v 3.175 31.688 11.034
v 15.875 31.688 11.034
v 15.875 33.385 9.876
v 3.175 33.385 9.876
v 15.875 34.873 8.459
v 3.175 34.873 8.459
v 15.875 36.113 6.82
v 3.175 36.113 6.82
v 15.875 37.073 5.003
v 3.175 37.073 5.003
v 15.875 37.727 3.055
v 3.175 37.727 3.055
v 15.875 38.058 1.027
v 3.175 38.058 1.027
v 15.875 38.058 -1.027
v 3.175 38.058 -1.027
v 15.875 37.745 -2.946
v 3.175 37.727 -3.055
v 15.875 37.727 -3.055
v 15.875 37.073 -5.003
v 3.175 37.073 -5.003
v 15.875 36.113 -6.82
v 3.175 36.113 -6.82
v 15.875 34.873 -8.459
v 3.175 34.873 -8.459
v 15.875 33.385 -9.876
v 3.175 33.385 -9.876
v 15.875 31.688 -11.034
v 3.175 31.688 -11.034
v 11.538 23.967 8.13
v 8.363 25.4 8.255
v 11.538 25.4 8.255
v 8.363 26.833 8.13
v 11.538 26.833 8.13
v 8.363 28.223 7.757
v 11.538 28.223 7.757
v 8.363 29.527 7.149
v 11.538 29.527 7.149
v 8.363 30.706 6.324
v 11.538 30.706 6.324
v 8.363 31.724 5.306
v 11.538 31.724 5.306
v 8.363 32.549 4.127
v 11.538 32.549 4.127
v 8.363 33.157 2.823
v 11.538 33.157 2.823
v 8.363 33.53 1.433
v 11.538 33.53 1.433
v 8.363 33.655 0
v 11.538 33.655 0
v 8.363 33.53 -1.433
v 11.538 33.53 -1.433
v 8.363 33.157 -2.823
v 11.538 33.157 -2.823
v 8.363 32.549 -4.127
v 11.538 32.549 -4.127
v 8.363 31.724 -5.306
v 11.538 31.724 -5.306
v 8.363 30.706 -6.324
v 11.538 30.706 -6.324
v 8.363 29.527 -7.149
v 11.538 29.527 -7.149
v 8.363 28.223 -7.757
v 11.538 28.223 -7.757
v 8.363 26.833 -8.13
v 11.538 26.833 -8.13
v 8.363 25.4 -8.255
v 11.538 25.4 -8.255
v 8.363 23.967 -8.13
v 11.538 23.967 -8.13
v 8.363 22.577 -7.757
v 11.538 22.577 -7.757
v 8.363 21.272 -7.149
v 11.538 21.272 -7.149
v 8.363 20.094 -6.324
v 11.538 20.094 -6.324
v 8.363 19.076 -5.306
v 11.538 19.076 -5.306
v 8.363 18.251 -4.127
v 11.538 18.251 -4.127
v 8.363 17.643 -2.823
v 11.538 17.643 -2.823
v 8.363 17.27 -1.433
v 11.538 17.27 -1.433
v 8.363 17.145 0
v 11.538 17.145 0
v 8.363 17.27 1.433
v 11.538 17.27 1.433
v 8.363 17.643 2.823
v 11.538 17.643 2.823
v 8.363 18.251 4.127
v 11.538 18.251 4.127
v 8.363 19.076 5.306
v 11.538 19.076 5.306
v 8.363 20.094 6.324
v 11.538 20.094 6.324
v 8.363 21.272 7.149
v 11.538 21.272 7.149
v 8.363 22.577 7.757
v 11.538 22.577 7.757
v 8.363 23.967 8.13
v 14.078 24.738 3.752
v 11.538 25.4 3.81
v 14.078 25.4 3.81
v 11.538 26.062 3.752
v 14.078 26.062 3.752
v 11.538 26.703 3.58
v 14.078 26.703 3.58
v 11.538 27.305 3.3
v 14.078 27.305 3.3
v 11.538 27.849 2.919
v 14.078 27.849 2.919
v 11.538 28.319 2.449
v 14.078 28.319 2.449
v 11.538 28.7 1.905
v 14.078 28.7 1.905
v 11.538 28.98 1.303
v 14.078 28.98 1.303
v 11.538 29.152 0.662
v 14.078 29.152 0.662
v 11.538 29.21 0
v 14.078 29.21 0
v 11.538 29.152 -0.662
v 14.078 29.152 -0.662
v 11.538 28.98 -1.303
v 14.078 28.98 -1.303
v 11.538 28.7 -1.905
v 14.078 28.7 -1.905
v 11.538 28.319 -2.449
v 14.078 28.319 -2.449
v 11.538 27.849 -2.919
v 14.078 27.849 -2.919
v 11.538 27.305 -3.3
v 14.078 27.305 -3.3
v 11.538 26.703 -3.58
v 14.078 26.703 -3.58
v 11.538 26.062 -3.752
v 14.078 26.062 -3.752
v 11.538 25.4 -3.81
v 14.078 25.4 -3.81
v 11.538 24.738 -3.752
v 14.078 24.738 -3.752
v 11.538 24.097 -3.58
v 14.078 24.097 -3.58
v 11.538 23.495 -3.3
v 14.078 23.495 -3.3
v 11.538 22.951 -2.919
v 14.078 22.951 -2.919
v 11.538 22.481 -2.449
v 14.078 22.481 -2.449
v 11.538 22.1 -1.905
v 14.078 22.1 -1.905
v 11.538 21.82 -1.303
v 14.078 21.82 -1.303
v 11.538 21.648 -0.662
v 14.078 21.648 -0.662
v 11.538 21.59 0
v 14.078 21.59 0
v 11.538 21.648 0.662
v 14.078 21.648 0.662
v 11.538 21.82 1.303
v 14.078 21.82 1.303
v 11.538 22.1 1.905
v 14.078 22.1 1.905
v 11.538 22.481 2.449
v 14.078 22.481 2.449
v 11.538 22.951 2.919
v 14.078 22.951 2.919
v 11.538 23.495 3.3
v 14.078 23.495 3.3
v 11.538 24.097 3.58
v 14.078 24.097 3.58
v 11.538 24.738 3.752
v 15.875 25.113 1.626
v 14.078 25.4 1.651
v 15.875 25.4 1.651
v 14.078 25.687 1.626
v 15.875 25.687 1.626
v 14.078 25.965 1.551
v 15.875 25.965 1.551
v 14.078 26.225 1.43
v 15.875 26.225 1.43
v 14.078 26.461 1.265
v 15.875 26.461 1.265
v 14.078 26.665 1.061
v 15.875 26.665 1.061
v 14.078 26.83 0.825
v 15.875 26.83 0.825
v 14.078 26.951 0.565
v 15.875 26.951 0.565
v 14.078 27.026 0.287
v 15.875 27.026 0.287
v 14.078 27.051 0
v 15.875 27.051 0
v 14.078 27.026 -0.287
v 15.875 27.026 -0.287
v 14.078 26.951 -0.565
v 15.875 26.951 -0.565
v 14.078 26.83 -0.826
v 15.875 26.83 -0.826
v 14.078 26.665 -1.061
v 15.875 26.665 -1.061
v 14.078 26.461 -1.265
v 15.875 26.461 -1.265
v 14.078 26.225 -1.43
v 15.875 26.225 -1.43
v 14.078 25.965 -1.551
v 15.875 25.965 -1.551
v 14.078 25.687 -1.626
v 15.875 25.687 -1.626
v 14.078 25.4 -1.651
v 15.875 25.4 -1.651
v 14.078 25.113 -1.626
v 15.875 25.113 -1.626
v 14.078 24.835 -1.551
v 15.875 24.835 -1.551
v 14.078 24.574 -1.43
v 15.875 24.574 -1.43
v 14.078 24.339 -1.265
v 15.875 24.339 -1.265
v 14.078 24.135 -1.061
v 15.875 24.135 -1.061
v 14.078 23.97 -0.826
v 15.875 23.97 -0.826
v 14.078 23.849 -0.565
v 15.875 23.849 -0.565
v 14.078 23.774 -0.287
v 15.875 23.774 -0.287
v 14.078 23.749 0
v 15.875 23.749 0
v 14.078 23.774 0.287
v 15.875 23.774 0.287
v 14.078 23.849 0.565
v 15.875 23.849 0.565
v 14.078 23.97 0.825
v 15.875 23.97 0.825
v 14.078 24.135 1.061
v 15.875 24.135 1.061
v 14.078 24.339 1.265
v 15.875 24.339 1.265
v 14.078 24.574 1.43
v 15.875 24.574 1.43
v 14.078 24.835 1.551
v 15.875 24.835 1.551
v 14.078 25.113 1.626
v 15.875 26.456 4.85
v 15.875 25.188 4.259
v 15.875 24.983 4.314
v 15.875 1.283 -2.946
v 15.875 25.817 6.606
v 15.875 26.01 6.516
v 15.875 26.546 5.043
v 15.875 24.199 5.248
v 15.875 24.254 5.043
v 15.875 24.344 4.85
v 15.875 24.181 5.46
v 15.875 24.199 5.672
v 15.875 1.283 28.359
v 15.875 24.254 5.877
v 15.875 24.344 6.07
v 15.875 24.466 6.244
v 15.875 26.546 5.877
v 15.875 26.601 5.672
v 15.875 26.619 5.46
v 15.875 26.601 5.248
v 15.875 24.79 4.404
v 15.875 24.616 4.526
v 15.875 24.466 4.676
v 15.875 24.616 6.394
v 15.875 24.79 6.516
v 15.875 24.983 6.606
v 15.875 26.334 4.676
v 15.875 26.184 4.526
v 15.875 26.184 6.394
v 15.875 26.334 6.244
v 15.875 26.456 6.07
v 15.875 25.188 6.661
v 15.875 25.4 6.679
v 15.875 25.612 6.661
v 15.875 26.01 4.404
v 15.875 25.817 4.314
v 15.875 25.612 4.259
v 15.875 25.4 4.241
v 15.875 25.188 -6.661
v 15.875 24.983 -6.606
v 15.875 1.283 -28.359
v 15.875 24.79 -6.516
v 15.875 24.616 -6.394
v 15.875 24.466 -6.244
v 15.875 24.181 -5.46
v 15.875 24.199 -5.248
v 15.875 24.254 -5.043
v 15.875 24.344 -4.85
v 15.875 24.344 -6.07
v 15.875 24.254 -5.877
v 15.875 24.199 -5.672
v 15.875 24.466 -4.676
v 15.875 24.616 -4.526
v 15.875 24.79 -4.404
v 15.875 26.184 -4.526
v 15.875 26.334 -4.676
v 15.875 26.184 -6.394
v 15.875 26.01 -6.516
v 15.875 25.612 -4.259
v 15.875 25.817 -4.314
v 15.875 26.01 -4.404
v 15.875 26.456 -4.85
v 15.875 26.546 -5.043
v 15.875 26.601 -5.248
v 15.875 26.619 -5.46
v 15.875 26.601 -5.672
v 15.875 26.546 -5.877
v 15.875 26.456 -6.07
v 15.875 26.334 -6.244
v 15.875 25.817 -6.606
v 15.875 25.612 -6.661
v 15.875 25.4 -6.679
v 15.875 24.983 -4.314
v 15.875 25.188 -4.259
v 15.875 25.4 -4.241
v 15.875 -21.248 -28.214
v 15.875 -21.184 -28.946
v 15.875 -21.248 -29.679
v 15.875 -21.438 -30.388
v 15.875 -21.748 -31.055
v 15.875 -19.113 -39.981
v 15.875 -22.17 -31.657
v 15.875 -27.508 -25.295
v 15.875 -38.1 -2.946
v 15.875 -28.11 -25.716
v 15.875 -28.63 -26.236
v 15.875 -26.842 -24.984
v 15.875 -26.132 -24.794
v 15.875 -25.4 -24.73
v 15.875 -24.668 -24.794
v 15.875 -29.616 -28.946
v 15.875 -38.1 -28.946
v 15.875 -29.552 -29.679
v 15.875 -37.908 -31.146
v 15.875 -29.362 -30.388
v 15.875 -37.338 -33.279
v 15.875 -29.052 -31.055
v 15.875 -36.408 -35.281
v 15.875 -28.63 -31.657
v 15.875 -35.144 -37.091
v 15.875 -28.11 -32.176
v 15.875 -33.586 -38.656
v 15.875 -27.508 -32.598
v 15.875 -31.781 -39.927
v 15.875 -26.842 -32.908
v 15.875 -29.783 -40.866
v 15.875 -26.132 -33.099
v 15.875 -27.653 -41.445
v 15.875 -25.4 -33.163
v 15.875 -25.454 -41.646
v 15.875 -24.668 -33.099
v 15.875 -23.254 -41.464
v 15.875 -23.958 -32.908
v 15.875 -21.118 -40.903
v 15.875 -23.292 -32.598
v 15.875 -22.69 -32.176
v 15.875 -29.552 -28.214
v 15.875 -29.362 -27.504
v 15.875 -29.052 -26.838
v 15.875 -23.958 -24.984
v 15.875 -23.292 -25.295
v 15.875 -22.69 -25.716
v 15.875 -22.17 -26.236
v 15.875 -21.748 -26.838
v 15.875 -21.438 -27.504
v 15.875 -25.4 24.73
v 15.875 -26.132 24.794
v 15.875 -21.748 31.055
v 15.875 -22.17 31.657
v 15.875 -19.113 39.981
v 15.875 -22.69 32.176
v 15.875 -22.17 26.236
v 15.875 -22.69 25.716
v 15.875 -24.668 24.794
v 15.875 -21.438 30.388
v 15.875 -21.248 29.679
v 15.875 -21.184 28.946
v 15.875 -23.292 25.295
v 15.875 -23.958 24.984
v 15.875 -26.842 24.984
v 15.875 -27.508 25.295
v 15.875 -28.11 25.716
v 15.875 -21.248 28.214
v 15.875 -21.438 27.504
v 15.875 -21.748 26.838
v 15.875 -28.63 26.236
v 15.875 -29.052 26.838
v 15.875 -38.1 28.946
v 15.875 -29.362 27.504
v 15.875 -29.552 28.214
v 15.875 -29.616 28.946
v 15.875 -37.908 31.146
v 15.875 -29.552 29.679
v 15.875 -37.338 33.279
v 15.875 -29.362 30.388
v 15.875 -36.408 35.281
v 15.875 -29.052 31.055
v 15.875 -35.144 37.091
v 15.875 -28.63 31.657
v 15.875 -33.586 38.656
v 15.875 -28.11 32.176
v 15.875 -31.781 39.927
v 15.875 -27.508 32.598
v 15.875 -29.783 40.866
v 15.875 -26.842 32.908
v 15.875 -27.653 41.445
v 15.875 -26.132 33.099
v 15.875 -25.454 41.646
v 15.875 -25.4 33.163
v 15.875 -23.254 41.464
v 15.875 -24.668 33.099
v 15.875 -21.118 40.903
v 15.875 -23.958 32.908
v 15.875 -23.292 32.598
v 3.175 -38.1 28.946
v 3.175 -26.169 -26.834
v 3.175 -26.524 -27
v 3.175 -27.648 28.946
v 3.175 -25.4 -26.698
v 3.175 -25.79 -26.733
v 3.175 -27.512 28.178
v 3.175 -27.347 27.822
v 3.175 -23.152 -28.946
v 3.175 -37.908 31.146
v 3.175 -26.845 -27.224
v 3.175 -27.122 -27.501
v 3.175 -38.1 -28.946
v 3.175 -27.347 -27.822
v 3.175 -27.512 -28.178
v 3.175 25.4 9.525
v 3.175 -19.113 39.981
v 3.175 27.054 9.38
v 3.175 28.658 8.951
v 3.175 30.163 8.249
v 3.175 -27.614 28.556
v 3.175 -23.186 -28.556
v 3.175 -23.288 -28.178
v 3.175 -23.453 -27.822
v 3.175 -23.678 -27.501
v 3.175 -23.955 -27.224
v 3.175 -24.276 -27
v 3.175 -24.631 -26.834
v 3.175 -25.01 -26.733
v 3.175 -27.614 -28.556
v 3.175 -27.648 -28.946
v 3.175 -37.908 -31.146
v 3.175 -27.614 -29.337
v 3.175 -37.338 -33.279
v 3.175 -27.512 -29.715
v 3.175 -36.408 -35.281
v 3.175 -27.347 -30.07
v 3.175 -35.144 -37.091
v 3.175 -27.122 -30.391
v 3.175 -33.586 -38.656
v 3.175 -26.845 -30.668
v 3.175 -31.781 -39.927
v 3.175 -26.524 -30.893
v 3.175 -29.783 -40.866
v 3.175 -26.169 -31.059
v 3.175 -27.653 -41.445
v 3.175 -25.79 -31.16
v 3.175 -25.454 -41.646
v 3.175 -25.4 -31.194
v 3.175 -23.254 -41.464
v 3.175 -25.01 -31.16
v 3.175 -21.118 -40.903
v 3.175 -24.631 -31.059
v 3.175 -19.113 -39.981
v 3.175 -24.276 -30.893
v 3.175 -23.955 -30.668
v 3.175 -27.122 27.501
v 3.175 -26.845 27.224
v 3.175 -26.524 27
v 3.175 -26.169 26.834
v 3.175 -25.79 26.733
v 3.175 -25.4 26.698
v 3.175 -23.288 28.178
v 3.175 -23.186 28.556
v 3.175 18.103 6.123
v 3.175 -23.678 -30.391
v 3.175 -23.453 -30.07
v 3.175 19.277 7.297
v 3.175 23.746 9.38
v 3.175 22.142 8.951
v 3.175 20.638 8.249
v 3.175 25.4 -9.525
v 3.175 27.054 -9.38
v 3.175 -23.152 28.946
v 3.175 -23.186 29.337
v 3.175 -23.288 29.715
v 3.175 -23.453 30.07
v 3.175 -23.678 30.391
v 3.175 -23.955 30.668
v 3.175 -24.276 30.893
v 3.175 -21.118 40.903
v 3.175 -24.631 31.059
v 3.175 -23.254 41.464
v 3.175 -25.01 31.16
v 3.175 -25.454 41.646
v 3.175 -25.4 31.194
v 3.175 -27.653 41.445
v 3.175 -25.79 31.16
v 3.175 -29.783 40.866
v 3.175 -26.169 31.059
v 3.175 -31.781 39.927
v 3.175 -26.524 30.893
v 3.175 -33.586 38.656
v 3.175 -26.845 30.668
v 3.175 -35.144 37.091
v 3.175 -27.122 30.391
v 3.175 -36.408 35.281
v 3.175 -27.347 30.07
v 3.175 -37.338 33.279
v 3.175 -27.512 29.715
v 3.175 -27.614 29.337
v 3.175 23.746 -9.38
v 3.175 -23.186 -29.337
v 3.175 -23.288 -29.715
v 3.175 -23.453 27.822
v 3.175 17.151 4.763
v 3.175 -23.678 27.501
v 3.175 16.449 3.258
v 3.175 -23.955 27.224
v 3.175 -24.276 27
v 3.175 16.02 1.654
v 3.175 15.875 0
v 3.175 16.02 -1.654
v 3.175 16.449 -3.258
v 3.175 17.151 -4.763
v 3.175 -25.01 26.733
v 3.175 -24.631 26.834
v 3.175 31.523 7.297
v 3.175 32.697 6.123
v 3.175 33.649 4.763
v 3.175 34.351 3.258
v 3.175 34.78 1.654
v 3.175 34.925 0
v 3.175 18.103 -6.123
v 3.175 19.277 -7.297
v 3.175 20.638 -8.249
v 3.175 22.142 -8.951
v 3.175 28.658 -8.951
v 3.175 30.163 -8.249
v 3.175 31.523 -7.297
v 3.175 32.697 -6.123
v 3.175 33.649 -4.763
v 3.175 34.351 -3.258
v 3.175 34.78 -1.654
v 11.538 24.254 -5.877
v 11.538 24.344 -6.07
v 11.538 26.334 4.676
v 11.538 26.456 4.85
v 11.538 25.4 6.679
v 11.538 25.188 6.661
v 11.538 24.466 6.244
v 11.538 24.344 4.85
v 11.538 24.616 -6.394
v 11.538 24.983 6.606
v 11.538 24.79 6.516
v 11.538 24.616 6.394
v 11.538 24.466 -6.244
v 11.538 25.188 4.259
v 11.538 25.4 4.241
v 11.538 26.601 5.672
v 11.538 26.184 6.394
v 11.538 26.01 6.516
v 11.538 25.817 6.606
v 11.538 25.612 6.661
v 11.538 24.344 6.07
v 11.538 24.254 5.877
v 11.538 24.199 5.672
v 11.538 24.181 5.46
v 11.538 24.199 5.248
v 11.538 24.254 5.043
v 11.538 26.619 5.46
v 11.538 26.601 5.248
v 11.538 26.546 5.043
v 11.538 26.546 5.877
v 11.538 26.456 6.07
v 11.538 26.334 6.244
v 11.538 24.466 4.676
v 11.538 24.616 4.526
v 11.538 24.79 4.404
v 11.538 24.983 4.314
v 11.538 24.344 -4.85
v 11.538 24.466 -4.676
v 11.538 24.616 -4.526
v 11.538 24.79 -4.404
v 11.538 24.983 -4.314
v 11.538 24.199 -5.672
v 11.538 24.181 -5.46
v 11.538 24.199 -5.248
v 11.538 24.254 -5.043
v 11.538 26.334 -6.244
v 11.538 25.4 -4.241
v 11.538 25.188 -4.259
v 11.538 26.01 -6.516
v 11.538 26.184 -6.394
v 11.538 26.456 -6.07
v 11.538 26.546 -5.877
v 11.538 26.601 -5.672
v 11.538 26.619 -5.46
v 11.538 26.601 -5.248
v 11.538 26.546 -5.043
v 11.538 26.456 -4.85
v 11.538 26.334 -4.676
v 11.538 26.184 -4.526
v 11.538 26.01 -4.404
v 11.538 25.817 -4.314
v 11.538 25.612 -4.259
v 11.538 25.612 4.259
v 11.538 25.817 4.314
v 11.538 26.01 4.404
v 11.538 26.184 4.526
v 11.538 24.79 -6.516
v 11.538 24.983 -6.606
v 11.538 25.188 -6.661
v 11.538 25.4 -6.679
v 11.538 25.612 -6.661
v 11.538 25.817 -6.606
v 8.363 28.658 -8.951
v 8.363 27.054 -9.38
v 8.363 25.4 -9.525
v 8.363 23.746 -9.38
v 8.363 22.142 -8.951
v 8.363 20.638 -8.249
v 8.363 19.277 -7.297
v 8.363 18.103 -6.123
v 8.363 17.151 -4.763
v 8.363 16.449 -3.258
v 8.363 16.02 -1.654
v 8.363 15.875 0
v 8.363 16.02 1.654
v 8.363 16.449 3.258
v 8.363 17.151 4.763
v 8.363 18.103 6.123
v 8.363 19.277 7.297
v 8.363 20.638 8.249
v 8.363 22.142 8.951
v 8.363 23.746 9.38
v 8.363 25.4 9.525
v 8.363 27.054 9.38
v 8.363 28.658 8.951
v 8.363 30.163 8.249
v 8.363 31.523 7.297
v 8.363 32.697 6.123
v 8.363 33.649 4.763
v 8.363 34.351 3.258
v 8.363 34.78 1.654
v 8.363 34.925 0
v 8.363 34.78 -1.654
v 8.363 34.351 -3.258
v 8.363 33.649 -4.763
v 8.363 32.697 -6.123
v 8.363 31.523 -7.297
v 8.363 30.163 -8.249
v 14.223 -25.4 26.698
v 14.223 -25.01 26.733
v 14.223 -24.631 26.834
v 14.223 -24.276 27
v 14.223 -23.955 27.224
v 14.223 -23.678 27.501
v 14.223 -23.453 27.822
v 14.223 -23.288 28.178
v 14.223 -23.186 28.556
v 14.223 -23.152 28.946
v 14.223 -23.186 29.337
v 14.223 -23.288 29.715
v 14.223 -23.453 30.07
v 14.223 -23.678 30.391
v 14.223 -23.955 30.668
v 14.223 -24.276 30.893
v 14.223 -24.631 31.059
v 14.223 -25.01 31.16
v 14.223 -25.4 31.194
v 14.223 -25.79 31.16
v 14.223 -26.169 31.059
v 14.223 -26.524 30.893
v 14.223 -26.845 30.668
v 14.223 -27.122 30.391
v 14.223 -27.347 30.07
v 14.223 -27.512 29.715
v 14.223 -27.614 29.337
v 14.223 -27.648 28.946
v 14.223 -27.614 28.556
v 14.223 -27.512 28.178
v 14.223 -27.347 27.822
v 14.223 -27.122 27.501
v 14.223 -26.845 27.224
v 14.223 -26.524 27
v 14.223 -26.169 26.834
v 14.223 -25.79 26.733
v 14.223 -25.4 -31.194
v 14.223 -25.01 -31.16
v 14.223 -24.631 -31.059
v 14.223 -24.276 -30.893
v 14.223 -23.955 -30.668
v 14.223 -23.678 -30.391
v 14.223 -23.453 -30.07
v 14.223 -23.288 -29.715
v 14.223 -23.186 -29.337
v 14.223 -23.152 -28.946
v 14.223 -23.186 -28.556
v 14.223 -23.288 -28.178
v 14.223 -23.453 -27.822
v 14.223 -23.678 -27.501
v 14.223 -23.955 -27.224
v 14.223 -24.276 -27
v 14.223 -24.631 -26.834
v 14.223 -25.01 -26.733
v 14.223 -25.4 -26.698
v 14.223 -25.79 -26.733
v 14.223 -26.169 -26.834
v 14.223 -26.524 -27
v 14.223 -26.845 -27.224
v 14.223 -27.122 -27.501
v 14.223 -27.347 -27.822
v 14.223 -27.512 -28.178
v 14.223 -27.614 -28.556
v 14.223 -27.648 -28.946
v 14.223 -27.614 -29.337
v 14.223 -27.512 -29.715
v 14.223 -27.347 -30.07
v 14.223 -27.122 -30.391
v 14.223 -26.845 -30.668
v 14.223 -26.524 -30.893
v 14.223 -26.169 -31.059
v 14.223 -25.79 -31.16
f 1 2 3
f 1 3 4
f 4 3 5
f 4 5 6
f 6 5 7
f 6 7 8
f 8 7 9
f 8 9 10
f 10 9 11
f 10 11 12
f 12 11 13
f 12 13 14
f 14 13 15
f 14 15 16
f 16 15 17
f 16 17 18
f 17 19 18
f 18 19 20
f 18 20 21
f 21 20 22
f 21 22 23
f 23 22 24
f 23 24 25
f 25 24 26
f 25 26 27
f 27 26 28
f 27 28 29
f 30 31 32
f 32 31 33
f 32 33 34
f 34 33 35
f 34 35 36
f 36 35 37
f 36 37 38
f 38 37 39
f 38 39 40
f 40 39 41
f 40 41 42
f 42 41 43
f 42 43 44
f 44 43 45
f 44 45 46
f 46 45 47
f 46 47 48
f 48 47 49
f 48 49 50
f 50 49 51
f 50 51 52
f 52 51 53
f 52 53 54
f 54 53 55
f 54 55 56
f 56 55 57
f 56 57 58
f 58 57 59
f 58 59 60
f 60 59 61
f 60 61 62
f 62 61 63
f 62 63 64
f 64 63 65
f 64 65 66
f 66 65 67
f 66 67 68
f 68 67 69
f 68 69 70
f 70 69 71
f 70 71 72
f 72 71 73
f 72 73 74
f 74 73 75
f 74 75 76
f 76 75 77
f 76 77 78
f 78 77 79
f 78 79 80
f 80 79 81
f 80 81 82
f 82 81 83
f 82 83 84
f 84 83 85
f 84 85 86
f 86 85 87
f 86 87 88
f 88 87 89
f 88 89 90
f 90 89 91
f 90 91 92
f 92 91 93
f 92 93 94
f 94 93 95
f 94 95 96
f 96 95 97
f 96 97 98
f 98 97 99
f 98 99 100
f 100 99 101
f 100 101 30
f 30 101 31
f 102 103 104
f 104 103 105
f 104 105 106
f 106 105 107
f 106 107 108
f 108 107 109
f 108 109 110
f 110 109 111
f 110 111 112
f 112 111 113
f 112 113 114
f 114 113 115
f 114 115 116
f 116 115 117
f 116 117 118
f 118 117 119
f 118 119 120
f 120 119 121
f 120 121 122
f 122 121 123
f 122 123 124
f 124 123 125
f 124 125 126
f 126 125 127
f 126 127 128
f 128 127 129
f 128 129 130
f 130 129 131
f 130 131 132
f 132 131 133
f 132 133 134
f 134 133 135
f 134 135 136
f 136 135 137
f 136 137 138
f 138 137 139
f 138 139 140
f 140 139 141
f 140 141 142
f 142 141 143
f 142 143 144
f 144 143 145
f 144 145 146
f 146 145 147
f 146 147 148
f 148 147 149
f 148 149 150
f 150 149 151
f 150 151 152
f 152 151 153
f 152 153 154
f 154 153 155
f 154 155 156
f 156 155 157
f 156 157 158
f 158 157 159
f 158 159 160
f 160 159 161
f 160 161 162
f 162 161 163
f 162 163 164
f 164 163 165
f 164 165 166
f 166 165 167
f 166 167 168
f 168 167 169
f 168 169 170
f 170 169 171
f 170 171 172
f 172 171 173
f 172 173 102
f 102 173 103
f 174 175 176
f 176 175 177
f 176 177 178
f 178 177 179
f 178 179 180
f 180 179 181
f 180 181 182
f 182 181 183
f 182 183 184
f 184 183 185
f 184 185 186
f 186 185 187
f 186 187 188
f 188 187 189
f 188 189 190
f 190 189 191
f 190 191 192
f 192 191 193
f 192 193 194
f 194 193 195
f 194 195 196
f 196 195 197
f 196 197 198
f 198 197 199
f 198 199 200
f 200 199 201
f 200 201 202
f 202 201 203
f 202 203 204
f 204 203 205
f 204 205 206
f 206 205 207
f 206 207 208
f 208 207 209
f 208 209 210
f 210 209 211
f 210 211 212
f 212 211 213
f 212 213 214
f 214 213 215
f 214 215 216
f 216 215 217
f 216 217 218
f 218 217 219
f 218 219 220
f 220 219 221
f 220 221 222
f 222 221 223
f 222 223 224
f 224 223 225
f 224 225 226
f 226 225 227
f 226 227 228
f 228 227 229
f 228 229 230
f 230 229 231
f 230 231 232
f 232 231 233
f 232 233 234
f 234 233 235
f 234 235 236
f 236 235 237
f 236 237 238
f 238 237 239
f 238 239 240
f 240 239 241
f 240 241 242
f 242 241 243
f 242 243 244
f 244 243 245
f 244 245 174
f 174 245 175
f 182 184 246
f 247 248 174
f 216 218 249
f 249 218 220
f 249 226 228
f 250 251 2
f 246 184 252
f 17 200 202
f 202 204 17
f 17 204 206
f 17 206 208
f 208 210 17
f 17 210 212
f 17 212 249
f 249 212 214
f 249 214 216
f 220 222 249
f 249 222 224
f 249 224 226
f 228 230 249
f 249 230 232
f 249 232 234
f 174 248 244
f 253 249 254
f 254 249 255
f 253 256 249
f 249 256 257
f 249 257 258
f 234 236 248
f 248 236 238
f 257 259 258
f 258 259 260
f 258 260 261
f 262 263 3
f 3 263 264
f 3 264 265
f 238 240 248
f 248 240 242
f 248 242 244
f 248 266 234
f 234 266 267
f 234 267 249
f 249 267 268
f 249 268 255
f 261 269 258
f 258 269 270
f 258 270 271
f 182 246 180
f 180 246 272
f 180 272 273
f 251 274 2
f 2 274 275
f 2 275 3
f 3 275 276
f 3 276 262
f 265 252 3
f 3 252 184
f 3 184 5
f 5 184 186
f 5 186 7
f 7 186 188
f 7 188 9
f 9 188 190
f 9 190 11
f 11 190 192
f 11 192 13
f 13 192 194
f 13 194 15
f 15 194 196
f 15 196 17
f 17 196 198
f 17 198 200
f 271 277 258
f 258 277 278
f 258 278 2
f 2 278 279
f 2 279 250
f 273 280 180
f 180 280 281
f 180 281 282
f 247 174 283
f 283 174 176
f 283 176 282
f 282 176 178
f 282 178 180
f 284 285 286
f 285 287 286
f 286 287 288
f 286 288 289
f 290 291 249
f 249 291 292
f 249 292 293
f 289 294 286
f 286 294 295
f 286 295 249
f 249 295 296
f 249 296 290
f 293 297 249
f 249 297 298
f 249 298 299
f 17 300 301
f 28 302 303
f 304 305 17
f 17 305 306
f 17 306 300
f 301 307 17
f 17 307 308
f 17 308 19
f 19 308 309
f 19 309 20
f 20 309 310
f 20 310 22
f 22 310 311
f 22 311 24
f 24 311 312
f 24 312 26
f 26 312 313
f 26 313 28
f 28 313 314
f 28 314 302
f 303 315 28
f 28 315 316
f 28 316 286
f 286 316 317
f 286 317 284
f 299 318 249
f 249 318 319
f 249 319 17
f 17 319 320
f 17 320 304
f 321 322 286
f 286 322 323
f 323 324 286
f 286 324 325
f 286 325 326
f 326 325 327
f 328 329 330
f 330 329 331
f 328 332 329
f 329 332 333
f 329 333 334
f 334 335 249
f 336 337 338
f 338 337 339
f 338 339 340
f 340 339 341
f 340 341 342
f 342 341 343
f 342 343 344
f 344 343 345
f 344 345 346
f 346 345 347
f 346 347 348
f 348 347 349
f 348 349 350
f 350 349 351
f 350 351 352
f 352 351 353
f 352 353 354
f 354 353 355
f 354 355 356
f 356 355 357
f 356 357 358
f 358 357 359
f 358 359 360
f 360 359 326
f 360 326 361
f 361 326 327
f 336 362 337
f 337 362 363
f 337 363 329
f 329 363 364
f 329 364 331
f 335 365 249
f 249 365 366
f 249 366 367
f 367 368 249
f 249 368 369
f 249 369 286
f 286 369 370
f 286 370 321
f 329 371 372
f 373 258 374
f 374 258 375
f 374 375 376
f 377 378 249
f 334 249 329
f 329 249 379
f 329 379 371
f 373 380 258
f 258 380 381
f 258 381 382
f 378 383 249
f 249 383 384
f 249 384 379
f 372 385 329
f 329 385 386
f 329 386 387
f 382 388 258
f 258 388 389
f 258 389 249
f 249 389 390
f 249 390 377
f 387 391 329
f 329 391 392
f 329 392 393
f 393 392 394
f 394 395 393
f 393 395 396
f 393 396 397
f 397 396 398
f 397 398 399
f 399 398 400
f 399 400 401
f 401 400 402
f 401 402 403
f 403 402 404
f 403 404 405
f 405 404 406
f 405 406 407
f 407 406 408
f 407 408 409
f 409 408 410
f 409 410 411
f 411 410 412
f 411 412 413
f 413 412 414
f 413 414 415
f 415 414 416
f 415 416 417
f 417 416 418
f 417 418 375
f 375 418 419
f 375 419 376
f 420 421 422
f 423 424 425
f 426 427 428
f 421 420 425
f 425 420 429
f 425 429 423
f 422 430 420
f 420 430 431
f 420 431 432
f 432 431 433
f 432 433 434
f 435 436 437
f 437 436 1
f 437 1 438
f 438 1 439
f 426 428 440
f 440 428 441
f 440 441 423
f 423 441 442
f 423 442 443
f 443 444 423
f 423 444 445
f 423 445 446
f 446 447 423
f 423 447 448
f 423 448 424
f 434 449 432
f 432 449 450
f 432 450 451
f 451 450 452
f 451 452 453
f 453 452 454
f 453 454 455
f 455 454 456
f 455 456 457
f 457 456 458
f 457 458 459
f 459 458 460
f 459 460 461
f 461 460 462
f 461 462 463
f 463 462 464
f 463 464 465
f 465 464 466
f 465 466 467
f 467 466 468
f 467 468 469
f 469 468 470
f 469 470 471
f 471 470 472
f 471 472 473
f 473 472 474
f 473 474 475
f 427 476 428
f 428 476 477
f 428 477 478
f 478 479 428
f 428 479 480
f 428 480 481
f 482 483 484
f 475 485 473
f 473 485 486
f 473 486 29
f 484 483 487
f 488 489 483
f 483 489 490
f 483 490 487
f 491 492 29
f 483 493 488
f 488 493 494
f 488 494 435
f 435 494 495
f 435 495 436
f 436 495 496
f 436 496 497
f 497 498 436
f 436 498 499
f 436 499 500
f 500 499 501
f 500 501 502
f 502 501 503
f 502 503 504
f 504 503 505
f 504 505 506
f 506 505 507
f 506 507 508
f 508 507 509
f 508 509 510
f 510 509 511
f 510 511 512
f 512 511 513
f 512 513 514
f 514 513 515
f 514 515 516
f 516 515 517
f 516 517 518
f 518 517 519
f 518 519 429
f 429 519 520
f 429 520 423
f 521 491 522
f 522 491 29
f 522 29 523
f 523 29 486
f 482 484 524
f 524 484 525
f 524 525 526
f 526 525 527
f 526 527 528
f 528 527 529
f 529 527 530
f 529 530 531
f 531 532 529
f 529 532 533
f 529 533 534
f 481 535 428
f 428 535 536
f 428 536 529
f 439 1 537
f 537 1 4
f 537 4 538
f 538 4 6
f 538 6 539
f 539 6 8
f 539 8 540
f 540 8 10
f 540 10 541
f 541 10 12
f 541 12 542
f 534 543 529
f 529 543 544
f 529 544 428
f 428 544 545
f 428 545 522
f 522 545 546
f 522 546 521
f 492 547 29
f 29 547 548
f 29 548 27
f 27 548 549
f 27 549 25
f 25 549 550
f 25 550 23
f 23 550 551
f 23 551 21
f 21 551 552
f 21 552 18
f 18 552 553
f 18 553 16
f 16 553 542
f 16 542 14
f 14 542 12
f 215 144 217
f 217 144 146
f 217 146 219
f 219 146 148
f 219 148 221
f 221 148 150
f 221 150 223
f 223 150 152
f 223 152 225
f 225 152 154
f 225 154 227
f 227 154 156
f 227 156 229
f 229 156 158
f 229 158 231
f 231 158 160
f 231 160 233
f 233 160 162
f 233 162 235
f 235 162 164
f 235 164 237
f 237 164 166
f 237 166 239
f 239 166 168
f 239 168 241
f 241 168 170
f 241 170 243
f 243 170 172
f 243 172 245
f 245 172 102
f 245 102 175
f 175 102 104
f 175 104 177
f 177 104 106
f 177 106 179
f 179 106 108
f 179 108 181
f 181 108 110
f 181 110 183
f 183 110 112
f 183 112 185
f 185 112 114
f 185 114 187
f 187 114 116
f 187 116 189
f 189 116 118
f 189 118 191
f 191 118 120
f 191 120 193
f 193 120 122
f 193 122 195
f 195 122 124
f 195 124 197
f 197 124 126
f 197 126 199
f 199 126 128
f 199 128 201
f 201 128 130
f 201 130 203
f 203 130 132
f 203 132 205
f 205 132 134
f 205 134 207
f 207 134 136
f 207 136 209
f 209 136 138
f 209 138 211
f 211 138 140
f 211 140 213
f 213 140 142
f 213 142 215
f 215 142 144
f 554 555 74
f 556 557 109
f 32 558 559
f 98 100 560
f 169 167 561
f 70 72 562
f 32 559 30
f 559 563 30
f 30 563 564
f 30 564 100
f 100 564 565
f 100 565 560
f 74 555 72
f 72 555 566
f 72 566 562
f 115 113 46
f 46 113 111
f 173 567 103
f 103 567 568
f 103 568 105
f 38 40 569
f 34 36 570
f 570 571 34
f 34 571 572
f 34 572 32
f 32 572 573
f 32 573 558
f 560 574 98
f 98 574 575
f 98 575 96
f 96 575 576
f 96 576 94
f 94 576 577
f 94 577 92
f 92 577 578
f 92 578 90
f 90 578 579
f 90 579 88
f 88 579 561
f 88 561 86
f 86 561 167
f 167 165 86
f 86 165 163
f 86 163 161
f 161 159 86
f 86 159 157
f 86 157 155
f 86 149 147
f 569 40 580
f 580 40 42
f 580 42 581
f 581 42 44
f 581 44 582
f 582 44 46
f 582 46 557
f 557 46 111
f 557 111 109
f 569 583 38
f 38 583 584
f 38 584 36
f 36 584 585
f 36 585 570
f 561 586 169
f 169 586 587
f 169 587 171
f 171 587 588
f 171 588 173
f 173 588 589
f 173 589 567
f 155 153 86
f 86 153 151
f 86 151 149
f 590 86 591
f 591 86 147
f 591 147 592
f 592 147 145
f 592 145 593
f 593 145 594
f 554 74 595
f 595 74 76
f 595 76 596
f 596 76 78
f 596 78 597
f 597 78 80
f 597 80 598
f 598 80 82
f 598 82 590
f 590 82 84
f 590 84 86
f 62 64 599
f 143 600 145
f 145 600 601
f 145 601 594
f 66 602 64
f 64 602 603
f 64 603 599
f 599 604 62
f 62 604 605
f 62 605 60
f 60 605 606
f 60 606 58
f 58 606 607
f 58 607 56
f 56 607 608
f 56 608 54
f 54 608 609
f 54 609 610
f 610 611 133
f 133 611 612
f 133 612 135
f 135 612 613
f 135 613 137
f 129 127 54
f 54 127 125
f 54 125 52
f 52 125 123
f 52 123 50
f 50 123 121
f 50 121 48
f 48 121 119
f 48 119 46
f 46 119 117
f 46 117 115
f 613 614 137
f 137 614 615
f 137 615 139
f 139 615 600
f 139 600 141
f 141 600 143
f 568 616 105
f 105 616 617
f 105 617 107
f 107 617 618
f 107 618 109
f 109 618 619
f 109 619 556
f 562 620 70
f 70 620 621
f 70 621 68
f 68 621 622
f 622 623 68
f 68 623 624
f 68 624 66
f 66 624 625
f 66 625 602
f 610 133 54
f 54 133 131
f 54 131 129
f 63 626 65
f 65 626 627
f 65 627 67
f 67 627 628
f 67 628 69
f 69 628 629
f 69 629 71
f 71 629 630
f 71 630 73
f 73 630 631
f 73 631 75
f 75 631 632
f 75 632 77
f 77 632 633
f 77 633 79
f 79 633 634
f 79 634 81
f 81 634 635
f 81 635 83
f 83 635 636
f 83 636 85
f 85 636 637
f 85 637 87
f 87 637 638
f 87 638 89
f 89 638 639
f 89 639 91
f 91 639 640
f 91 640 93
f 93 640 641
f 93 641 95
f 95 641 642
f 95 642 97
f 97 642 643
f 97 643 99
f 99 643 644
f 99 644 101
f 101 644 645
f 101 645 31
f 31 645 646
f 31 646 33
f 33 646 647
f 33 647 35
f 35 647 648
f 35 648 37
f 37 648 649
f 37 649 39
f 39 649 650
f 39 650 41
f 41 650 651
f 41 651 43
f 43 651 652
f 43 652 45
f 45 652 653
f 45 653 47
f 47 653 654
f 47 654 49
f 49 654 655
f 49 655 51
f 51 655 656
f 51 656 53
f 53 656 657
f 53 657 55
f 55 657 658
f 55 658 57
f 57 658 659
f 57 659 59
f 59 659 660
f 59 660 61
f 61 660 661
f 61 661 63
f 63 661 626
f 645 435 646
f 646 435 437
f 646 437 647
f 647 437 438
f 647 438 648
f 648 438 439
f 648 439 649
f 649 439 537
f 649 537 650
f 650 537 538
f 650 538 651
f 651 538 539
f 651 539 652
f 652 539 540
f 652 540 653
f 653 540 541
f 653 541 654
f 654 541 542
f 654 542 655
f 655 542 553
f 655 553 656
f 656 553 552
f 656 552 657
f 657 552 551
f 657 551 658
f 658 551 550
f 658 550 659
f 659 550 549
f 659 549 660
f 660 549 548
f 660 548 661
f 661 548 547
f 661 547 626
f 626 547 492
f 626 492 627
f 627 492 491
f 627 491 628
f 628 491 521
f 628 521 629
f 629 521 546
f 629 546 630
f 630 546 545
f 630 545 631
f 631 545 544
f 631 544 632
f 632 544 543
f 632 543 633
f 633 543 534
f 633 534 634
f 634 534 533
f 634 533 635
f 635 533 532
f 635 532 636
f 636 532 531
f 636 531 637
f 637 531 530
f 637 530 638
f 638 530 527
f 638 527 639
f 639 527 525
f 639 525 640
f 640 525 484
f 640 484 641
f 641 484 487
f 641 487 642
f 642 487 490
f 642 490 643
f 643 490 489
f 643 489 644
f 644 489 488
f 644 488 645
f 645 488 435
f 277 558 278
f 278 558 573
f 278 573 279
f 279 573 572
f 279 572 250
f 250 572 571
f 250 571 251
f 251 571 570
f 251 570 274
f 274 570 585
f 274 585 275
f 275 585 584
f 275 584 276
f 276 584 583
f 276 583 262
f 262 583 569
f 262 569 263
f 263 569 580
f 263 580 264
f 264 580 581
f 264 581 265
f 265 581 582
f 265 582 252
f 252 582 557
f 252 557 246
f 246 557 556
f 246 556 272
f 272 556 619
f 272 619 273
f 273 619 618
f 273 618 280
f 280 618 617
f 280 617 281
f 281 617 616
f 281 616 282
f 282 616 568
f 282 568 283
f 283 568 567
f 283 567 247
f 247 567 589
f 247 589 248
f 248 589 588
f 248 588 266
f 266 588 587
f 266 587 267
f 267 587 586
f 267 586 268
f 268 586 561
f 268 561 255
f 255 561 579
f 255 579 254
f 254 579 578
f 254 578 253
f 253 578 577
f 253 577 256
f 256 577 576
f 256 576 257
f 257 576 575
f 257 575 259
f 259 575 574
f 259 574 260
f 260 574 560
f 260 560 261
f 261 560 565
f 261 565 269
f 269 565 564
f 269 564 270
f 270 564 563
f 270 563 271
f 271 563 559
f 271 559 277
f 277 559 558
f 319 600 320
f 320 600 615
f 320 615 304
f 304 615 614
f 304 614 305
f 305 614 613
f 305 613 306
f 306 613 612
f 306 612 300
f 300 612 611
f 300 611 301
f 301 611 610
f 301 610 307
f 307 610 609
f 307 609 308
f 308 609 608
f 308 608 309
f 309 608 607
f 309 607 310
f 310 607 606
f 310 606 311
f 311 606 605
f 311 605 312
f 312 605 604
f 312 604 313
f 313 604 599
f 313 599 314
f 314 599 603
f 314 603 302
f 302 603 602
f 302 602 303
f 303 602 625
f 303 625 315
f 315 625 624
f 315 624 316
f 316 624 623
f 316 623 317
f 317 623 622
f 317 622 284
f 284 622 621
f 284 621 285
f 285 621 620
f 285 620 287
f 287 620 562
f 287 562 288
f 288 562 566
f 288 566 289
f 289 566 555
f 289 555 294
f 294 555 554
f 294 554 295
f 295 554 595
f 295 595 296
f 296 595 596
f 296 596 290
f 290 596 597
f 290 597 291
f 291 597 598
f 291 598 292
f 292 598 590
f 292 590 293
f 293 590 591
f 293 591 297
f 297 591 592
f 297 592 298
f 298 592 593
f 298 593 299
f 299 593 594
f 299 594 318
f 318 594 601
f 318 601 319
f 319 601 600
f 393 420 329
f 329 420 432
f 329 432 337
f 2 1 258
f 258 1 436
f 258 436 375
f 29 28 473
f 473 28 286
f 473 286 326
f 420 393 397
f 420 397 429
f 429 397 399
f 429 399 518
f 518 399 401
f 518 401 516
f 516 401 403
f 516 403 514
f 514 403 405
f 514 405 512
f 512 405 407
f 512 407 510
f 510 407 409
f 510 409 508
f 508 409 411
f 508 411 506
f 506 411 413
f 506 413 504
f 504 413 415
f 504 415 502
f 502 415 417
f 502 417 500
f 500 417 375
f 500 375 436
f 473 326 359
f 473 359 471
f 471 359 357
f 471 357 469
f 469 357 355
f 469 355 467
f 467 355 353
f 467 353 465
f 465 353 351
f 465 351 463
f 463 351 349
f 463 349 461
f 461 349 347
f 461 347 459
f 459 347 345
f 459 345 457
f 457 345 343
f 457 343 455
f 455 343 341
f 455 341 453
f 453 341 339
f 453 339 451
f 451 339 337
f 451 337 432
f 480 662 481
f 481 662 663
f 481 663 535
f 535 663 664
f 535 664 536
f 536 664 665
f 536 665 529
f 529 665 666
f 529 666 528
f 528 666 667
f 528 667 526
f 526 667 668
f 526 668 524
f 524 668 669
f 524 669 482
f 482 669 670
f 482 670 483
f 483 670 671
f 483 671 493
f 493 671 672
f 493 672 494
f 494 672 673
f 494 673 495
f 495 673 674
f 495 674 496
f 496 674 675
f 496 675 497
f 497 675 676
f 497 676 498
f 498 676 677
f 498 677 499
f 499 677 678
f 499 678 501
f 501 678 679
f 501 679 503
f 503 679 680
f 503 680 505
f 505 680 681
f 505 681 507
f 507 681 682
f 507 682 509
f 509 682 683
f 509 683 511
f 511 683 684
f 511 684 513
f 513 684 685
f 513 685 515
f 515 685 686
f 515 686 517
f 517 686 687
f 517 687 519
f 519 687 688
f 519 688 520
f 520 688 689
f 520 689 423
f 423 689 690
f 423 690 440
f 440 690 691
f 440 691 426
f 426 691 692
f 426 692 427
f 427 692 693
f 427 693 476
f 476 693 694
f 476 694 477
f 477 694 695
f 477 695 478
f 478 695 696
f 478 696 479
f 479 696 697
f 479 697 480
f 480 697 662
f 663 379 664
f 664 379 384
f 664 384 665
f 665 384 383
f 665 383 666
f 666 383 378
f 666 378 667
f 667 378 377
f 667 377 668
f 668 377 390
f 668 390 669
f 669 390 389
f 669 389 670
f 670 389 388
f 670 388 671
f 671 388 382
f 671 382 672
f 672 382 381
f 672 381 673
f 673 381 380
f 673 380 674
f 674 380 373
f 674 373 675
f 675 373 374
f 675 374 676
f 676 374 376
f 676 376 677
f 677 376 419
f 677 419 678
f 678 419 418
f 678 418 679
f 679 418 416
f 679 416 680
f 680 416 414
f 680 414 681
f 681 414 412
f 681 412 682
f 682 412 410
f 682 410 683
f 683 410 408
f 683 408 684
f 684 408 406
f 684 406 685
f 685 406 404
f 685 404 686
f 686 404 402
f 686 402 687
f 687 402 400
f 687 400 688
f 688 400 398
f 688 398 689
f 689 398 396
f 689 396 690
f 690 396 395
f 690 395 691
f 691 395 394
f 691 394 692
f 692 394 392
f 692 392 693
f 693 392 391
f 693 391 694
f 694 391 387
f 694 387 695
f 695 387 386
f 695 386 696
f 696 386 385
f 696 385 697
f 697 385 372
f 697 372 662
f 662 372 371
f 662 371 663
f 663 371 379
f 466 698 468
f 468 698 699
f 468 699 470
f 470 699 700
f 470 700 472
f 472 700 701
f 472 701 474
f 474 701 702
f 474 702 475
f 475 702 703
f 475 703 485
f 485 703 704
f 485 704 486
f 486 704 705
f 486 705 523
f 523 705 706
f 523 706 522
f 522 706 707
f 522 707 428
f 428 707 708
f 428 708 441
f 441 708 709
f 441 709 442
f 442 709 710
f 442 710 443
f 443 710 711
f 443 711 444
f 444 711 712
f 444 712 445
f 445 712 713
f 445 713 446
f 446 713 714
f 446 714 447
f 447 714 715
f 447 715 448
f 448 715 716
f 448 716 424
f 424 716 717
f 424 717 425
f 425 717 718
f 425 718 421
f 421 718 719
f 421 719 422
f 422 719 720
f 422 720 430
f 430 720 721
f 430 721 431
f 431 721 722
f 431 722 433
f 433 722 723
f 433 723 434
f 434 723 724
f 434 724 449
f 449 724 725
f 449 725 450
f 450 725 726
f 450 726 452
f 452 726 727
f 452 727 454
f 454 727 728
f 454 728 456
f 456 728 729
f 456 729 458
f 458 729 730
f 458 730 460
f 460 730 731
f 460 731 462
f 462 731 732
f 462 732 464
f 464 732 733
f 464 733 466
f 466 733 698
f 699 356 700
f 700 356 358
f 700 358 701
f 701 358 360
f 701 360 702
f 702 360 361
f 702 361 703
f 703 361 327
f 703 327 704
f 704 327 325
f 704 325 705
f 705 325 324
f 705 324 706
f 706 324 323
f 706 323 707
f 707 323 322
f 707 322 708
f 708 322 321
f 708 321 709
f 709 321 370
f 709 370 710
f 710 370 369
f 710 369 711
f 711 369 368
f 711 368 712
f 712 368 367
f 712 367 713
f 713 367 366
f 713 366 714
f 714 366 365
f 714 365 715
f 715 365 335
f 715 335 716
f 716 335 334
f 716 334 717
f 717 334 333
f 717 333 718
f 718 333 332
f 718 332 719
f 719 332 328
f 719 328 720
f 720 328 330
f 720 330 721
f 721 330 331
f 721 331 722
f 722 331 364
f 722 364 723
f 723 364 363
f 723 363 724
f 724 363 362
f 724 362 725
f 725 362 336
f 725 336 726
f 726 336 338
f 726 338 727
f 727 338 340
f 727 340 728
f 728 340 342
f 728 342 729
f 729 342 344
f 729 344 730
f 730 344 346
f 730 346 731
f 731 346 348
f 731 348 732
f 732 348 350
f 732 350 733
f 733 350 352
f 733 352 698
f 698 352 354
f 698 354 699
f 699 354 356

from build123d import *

# Parameters (mm, degrees)
SKETCH1_R                                         = 12.7
BOSS_EXTRUDE1_DEPTH                               = 12.7
SKETCH2_R                                         = 1.6256
CUT_EXTRUDE1_DEPTH                                = 9.525
BOSS_EXTRUDE6_START                               = -12.7
BOSS_EXTRUDE6_DEPTH                               = 12.7
SKETCH15_R                                        = 12.7
BOSS_EXTRUDE8_DEPTH                               = 12.7
SKETCH17_R                                        = 1.651
CUT_EXTRUDE4_DEPTH                                = 12.7
SKETCH18_R                                        = 3.81
CUT_EXTRUDE5_DEPTH                                = 10.9027722
SKETCH19_R                                        = 8.255
CUT_EXTRUDE6_DEPTH                                = 8.3627722
SKETCH20_R                                        = 9.525
CUT_EXTRUDE7_DEPTH                                = 5.1877722
SKETCH21_R                                        = 1.2192
CUT_EXTRUDE8_DEPTH                                = 4.3372278
SKETCH22_W                                        = 15.875
SKETCH22_H                                        = 25.4
CUT_EXTRUDE9_DEPTH                                = 33.534068682
SKETCH23_W                                        = 12.7
SKETCH23_H                                        = 25.4
BOSS_EXTRUDE9_DEPTH                               = 38.1
BOSS_EXTRUDE13_DEPTH                              = 12.7
FILLET1_R                                         = 12.7
CSK_FOR_8_FLAT_HEAD_MACHINE_SCREW_100_D           = 4.4958
CSK_FOR_8_FLAT_HEAD_MACHINE_SCREW_100_CSINK_D     = 8.4328
CSK_FOR_8_FLAT_HEAD_MACHINE_SCREW_100_CSINK_ANGLE = 100


with BuildPart() as part:
    # Sketch1 → Boss-Extrude1 (new body)
    with BuildSketch(Plane(origin=(0, 0, 0), x_dir=(1, 0, 0), z_dir=(0, 1, 0))):
        with Locations(Location((0, 0, 0), (0, 0, 270))):
            Circle(SKETCH1_R)
    extrude(amount=BOSS_EXTRUDE1_DEPTH)

    # Sketch2 → Cut-Extrude1 (cut)
    with BuildSketch(Plane.XZ):
        with Locations(Location((0, 0, 0), (0, 0, 270))):
            Circle(SKETCH2_R)
    extrude(amount=-CUT_EXTRUDE1_DEPTH, mode=Mode.SUBTRACT)

    # Sketch14 → Boss-Extrude6 (add)
    with BuildSketch(Plane(origin=(0, 12.7, 0), x_dir=(1, 0, 0), z_dir=(0, 1, 0)).offset(BOSS_EXTRUDE6_START)):
        with BuildLine():
            Line((15.875, 12.7), (0, 12.7))
            ThreePointArc((0, 12.7), (8.980256121, 8.980256121), (12.7, 0))
            ThreePointArc((12.7, 0), (8.980256121, -8.980256121), (0, -12.7))
            Line((0, -12.7), (15.875, -12.7))
            Line((15.875, -12.7), (15.875, 12.7))
        make_face()
    extrude(amount=BOSS_EXTRUDE6_DEPTH)

    # Sketch15 → Boss-Extrude8 (add)
    with BuildSketch(Plane(origin=(15.875, 0, 0), x_dir=(0, 0, -1), z_dir=(1, 0, 0))):
        with Locations((0, 25.4)):
            Circle(SKETCH15_R)
        with BuildLine():
            ThreePointArc((0, 12.7), (-8.980256121, 16.419743879), (-12.7, 25.4))
            Line((-12.7, 25.4), (-12.7, 12.7))
            Line((-12.7, 12.7), (0, 12.7))
        make_face()
        with BuildLine():
            Line((12.7, 12.7), (12.7, 25.4))
            ThreePointArc((12.7, 25.4), (8.980256121, 16.419743879), (0, 12.7))
            Line((0, 12.7), (12.7, 12.7))
        make_face()
    extrude(amount=-BOSS_EXTRUDE8_DEPTH)

    # Sketch17 → Cut-Extrude4 (cut)
    with BuildSketch(Plane.ZY.offset(-3.175)):
        with Locations((0, 25.4)):
            Circle(SKETCH17_R)
    extrude(amount=-CUT_EXTRUDE4_DEPTH, mode=Mode.SUBTRACT)

    # Sketch18 → Cut-Extrude5 (cut)
    with BuildSketch(Plane.ZY.offset(-3.175)):
        with Locations((0, 25.4)):
            Circle(SKETCH18_R)
    extrude(amount=-CUT_EXTRUDE5_DEPTH, mode=Mode.SUBTRACT)

    # Sketch19 → Cut-Extrude6 (cut)
    with BuildSketch(Plane.ZY.offset(-3.175)):
        with Locations((0, 25.4)):
            Circle(SKETCH19_R)
    extrude(amount=-CUT_EXTRUDE6_DEPTH, mode=Mode.SUBTRACT)

    # Sketch20 → Cut-Extrude7 (cut)
    with BuildSketch(Plane.ZY.offset(-3.175)):
        with Locations((0, 25.4)):
            Circle(SKETCH20_R)
    extrude(amount=-CUT_EXTRUDE7_DEPTH, mode=Mode.SUBTRACT)

    # Sketch21 → Cut-Extrude8 (cut)
    with BuildSketch(Plane.ZY.offset(-11.5377722)):
        with Locations((5.4599967, 25.4)):
            Circle(SKETCH21_R)
        with Locations((-5.4599967, 25.4)):
            Circle(SKETCH21_R)
    extrude(amount=-CUT_EXTRUDE8_DEPTH, mode=Mode.SUBTRACT)

    # Sketch22 → Cut-Extrude9 (cut, through all)
    with BuildSketch(Plane(origin=(0, 12.7, 0), x_dir=(1, 0, 0), z_dir=(0, 1, 0))):
        with Locations((-4.7625, 0)):
            Rectangle(SKETCH22_W, SKETCH22_H)
    extrude(amount=-CUT_EXTRUDE9_DEPTH, mode=Mode.SUBTRACT)

    # Sketch23 → Boss-Extrude9 (add)
    with BuildSketch(Plane.XZ):
        with Locations((9.525, 0)):
            Rectangle(SKETCH23_W, SKETCH23_H)
    extrude(amount=BOSS_EXTRUDE9_DEPTH)

    # Sketch28 → Boss-Extrude13 (add)
    with BuildSketch(Plane(origin=(15.875, 0, 0), x_dir=(0, 0, -1), z_dir=(1, 0, 0))):
        with BuildLine():
            ThreePointArc((-12.7, 25.4), (-12.276533056, 28.652189435), (-11.034372264, 31.687497812))
            Line((-11.034372264, 31.687497812), (-50.8, -38.1))
            Line((-50.8, -38.1), (-12.7, -38.1))
            Line((-12.7, -38.1), (-12.7, 25.4))
        make_face()
        with BuildLine():
            Line((50.8, -38.1), (11.034372264, 31.687497812))
            ThreePointArc((11.034372264, 31.687497812), (12.276533056, 28.652189435), (12.7, 25.4))
            Line((12.7, 25.4), (12.7, -38.1))
            Line((12.7, -38.1), (50.8, -38.1))
        make_face()
    extrude(amount=-BOSS_EXTRUDE13_DEPTH)

    # Fillet1
    fillet1_edges = [part.edges().sort_by_distance(p)[0] for p in [
        (9.525, -38.1, 50.8),
        (9.525, -38.1, -50.8),
    ]]
    fillet(fillet1_edges, radius=FILLET1_R)

    # CSK for #8 Flat Head Machine Screw (100)1 (through all)
    with Locations(Plane(origin=(15.875, 0, 0), x_dir=(0, 0, -1), z_dir=(1, 0, 0))):
        with Locations((28.946357905, -25.4), (-28.946357905, -25.4)):
            CounterSinkHole(CSK_FOR_8_FLAT_HEAD_MACHINE_SCREW_100_D / 2, CSK_FOR_8_FLAT_HEAD_MACHINE_SCREW_100_CSINK_D / 2, counter_sink_angle=CSK_FOR_8_FLAT_HEAD_MACHINE_SCREW_100_CSINK_ANGLE)


solid = part.part
